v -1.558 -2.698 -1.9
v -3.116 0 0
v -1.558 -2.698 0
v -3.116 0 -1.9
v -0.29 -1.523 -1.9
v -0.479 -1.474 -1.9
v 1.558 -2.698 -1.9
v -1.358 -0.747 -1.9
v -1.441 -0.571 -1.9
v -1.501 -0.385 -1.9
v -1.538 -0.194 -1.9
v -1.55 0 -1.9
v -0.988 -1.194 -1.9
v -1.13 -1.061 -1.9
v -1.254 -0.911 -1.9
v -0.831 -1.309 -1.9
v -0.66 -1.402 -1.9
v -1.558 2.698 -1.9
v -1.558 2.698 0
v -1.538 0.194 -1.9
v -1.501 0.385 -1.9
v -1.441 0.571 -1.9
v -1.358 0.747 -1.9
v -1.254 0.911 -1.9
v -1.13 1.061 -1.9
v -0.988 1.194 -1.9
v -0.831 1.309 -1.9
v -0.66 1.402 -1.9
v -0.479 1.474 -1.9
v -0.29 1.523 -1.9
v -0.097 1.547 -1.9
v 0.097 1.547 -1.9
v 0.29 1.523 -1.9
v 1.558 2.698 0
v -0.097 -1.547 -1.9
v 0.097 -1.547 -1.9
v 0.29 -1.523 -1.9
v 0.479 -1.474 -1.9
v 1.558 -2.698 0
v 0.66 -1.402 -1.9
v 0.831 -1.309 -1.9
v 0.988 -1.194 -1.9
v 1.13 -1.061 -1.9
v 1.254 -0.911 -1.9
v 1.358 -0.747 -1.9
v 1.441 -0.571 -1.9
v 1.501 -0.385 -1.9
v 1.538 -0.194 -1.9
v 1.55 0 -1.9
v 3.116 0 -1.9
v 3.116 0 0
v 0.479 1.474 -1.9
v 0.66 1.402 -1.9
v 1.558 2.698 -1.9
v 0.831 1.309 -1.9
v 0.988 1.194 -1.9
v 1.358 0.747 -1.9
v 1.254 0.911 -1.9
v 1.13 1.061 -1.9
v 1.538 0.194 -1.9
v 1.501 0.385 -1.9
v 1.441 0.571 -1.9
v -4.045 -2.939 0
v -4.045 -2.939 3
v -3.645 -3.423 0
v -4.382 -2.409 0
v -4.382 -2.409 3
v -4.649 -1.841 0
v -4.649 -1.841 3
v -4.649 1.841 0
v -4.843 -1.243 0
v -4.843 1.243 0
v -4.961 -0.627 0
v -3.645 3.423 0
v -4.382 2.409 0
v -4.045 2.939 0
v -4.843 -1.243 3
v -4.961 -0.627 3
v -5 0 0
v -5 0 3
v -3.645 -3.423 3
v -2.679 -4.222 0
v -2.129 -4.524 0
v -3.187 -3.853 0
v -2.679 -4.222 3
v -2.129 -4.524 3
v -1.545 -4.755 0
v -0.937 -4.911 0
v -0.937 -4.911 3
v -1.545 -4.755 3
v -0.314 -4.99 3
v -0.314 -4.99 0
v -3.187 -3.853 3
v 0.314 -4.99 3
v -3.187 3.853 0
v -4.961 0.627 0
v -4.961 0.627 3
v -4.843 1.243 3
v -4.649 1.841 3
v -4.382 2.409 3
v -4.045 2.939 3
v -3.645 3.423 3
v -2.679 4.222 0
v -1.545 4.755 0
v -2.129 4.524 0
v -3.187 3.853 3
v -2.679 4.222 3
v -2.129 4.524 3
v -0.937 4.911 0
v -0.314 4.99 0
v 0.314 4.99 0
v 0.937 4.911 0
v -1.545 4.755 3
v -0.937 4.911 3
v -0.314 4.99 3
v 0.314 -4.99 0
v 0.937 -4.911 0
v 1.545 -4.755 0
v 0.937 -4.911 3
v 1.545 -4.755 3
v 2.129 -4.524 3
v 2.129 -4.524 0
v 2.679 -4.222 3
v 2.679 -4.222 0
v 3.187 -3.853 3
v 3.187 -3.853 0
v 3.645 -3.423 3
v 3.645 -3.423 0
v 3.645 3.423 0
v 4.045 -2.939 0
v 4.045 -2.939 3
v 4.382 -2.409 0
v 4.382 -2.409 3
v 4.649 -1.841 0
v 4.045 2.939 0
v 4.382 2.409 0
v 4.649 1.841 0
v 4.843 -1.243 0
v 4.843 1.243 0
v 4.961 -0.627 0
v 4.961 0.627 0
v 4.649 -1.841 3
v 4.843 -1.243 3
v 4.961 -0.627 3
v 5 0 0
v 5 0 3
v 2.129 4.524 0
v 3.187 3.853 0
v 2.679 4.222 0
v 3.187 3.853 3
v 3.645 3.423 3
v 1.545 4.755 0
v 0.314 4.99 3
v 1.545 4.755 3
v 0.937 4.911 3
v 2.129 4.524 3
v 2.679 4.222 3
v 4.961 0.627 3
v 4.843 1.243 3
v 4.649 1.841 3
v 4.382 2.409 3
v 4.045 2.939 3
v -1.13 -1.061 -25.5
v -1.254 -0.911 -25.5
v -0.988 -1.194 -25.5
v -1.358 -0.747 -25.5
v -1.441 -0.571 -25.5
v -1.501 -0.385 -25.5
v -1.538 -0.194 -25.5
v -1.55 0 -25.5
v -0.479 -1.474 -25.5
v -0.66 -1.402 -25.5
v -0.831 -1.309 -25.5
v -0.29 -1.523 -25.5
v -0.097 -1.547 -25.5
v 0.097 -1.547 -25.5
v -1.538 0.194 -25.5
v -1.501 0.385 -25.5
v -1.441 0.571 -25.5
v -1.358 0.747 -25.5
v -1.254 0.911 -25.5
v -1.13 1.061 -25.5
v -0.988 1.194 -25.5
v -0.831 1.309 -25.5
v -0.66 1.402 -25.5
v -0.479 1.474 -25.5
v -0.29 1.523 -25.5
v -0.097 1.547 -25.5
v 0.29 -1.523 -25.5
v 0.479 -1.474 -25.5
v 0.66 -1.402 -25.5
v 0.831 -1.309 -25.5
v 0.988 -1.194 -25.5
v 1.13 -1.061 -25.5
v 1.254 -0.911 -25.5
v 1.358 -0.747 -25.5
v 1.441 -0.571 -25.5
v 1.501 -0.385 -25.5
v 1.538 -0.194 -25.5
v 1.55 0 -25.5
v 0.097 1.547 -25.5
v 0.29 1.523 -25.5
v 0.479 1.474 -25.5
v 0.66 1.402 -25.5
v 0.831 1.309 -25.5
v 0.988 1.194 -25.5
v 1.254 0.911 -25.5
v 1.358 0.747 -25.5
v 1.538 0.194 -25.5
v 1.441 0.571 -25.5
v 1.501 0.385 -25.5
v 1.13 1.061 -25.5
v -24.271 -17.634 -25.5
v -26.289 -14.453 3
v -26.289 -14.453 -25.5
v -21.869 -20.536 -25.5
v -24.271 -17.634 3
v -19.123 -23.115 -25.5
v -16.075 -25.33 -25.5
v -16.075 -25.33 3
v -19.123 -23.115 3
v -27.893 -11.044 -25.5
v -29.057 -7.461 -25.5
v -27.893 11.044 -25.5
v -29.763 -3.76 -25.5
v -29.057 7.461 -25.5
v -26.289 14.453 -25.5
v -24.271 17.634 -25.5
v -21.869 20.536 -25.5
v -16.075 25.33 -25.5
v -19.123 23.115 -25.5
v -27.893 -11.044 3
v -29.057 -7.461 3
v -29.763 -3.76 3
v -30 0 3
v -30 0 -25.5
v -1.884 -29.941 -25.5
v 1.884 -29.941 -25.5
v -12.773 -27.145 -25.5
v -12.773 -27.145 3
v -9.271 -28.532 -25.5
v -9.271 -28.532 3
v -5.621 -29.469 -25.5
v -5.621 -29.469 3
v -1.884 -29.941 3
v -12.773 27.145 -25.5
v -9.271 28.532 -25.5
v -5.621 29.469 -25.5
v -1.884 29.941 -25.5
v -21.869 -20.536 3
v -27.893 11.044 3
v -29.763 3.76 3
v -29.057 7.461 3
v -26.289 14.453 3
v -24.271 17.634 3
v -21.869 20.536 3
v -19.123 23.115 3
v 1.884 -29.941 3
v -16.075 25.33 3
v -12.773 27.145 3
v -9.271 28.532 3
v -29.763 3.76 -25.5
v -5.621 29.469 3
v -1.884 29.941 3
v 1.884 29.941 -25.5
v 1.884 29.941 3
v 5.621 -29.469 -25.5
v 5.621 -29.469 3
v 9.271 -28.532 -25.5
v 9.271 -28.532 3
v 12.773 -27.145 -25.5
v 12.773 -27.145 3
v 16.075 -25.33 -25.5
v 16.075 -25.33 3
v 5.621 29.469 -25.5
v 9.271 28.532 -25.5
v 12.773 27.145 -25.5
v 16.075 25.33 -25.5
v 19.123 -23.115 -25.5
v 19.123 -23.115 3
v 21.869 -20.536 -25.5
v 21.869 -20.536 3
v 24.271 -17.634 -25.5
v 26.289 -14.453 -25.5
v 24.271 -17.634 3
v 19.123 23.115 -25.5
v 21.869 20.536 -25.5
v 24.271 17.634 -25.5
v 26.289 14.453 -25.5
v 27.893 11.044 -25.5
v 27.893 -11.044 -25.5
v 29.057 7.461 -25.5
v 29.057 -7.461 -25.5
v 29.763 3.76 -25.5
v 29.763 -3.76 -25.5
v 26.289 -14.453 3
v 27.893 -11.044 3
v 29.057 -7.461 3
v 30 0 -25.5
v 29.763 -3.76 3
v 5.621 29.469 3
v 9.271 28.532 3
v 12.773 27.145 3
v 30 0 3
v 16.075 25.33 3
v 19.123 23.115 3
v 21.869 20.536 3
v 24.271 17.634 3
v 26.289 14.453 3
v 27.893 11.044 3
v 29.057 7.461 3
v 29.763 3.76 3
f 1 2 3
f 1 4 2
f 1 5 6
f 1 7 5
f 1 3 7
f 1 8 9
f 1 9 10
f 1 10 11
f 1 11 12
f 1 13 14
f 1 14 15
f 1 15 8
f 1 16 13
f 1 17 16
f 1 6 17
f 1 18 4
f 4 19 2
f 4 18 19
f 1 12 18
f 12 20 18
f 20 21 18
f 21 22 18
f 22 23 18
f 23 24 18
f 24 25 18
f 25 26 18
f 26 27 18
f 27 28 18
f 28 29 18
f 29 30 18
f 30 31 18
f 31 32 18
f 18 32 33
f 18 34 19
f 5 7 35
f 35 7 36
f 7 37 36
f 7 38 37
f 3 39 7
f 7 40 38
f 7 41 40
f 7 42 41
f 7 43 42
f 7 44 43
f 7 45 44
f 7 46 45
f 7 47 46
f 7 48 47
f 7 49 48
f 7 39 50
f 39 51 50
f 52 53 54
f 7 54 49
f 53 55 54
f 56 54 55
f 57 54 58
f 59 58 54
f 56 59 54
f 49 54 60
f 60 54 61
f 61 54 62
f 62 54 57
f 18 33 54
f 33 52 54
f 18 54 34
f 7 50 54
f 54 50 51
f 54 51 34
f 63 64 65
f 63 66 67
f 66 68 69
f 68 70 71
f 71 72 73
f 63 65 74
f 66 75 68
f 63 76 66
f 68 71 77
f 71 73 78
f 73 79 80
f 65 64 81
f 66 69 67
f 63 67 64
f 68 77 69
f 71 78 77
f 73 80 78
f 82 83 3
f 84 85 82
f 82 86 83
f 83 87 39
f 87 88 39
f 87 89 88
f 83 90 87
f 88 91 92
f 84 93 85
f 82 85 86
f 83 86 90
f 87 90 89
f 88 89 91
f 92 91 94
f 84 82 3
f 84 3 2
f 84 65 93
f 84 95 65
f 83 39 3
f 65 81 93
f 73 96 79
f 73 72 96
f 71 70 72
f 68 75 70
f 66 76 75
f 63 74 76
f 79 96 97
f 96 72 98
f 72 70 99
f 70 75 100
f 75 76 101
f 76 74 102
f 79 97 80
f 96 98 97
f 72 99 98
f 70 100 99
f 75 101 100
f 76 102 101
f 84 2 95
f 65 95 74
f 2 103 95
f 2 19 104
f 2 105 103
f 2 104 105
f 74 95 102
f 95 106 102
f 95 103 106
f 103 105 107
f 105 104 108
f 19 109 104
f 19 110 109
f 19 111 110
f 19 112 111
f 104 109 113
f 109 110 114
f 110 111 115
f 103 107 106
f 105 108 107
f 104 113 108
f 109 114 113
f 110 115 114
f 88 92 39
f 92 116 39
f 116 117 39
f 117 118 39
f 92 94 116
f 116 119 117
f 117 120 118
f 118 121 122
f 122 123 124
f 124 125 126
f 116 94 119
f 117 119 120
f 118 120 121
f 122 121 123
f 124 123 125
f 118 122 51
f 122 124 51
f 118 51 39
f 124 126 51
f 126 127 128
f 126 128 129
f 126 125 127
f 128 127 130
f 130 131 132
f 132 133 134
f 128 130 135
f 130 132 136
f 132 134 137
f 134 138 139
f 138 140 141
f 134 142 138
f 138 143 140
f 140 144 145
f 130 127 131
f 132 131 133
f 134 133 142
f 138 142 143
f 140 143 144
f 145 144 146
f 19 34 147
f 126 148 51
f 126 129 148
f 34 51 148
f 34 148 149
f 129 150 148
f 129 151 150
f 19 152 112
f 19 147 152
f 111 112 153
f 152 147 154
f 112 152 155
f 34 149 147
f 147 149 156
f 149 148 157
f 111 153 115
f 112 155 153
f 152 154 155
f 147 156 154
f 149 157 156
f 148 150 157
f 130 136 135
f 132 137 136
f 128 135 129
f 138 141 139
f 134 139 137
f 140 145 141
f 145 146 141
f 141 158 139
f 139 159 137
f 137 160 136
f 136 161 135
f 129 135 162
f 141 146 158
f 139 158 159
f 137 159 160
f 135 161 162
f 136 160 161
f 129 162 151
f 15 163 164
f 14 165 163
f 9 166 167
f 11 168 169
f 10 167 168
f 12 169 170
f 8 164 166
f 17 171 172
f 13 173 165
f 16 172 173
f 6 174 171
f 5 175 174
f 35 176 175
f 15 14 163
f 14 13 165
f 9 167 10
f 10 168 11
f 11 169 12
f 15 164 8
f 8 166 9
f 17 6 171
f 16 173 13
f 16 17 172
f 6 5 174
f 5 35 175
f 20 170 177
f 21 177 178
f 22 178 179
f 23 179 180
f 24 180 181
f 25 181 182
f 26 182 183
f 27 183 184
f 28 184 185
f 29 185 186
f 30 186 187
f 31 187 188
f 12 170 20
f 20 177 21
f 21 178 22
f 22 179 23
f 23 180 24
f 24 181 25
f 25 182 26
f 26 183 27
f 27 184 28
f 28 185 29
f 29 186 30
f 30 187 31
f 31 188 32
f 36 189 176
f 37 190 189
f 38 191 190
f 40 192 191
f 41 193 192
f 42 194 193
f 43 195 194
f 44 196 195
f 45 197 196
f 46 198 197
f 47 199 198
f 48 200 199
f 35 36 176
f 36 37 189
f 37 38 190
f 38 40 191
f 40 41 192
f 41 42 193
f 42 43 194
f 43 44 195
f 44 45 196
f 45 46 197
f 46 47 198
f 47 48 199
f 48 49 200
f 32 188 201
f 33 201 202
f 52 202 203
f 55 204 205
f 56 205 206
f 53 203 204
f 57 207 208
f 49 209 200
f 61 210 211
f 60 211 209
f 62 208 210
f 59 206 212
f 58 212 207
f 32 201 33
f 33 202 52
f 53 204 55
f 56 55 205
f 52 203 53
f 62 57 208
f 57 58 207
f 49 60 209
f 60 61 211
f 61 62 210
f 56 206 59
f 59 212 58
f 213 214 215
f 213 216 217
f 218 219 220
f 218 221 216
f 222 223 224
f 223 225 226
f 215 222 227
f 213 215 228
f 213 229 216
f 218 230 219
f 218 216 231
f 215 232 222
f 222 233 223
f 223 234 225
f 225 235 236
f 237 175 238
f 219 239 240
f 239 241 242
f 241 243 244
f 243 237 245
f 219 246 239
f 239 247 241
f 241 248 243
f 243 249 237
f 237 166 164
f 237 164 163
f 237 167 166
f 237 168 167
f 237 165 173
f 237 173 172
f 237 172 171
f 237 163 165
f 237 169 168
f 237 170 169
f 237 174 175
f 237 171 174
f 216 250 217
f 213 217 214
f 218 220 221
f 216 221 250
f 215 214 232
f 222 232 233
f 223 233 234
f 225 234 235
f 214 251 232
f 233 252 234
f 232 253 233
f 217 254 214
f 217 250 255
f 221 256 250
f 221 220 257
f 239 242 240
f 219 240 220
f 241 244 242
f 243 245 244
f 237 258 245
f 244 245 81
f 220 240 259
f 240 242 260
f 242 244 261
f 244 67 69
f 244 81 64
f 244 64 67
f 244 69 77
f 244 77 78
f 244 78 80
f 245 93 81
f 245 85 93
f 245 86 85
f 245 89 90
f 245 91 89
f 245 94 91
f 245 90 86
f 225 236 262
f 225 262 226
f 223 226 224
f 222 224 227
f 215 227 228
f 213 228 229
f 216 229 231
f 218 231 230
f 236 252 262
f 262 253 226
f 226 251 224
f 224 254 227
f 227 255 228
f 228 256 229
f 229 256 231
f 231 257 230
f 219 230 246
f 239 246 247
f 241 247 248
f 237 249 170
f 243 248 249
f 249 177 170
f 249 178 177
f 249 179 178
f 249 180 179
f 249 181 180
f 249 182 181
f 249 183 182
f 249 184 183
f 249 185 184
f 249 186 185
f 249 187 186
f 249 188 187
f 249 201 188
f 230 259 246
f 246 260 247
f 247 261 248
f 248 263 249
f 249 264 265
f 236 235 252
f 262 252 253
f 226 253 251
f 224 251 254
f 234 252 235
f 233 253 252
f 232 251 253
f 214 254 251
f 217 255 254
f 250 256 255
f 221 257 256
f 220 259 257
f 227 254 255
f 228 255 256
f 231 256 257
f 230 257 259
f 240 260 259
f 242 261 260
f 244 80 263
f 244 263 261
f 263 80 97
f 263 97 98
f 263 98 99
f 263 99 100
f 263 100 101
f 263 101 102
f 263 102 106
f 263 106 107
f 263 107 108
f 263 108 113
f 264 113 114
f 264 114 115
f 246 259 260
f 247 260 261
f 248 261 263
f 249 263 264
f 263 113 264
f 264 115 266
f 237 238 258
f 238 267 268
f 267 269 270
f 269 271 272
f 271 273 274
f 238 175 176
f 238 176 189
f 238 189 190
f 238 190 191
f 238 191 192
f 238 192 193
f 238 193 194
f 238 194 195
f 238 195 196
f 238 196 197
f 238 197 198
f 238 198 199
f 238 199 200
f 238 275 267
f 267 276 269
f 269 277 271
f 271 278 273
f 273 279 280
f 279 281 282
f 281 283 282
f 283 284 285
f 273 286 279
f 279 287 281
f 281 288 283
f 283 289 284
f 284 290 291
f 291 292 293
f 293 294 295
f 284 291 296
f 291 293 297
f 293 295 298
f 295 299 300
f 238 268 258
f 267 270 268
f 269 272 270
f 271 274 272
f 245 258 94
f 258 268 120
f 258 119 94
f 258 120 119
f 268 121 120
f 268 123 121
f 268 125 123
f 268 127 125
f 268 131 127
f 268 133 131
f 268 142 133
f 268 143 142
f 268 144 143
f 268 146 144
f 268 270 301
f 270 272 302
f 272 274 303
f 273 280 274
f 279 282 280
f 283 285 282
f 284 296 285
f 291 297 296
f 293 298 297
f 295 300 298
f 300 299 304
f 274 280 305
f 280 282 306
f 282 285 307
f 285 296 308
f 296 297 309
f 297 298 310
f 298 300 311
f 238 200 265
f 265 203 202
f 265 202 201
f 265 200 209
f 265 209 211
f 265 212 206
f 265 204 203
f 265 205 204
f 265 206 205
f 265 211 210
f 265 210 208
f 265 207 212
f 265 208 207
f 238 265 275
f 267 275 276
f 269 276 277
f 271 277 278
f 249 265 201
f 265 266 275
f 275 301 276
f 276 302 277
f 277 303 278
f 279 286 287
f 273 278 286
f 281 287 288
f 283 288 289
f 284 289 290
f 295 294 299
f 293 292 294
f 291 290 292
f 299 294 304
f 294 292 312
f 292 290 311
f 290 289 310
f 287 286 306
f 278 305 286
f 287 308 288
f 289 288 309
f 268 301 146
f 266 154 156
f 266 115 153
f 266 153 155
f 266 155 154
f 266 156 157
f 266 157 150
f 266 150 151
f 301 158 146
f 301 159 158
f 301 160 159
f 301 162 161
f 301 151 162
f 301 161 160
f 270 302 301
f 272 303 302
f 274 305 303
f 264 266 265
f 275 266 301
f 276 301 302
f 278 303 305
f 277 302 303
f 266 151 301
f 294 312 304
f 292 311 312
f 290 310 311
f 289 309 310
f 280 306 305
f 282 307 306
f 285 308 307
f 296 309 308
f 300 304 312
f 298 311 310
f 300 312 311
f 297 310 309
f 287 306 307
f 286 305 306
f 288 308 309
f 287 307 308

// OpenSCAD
$fn = 50;

difference() {
	union() {
		translate(v = [0, 0, -25.5]) {
			cylinder(h = 28.5, r = 30.0);
		}
	}
	union() {
		translate(v = [0, 0, 0]) {
			rotate(a = [0, 0, 0]) {
				difference() {
					union() {
						translate(v = [0, 0, -1.9]) {
							linear_extrude(height = 1.9) {
								polygon(points = [[3.1158, 0.0], [1.5579000000000005, 2.698361953111554], [-1.5578999999999994, 2.6983619531115544], [-3.1158, 3.815754496783323e-16], [-1.5579000000000014, -2.6983619531115535], [1.557899999999998, -2.6983619531115552]]);
							}
						}
					}
					union();
				}
			}
		}
		#cylinder(h = 3, r = 5.0);
		#translate(v = [0, 0, -100.0]) {
			cylinder(h = 200, r = 1.55);
		}
	}
}
